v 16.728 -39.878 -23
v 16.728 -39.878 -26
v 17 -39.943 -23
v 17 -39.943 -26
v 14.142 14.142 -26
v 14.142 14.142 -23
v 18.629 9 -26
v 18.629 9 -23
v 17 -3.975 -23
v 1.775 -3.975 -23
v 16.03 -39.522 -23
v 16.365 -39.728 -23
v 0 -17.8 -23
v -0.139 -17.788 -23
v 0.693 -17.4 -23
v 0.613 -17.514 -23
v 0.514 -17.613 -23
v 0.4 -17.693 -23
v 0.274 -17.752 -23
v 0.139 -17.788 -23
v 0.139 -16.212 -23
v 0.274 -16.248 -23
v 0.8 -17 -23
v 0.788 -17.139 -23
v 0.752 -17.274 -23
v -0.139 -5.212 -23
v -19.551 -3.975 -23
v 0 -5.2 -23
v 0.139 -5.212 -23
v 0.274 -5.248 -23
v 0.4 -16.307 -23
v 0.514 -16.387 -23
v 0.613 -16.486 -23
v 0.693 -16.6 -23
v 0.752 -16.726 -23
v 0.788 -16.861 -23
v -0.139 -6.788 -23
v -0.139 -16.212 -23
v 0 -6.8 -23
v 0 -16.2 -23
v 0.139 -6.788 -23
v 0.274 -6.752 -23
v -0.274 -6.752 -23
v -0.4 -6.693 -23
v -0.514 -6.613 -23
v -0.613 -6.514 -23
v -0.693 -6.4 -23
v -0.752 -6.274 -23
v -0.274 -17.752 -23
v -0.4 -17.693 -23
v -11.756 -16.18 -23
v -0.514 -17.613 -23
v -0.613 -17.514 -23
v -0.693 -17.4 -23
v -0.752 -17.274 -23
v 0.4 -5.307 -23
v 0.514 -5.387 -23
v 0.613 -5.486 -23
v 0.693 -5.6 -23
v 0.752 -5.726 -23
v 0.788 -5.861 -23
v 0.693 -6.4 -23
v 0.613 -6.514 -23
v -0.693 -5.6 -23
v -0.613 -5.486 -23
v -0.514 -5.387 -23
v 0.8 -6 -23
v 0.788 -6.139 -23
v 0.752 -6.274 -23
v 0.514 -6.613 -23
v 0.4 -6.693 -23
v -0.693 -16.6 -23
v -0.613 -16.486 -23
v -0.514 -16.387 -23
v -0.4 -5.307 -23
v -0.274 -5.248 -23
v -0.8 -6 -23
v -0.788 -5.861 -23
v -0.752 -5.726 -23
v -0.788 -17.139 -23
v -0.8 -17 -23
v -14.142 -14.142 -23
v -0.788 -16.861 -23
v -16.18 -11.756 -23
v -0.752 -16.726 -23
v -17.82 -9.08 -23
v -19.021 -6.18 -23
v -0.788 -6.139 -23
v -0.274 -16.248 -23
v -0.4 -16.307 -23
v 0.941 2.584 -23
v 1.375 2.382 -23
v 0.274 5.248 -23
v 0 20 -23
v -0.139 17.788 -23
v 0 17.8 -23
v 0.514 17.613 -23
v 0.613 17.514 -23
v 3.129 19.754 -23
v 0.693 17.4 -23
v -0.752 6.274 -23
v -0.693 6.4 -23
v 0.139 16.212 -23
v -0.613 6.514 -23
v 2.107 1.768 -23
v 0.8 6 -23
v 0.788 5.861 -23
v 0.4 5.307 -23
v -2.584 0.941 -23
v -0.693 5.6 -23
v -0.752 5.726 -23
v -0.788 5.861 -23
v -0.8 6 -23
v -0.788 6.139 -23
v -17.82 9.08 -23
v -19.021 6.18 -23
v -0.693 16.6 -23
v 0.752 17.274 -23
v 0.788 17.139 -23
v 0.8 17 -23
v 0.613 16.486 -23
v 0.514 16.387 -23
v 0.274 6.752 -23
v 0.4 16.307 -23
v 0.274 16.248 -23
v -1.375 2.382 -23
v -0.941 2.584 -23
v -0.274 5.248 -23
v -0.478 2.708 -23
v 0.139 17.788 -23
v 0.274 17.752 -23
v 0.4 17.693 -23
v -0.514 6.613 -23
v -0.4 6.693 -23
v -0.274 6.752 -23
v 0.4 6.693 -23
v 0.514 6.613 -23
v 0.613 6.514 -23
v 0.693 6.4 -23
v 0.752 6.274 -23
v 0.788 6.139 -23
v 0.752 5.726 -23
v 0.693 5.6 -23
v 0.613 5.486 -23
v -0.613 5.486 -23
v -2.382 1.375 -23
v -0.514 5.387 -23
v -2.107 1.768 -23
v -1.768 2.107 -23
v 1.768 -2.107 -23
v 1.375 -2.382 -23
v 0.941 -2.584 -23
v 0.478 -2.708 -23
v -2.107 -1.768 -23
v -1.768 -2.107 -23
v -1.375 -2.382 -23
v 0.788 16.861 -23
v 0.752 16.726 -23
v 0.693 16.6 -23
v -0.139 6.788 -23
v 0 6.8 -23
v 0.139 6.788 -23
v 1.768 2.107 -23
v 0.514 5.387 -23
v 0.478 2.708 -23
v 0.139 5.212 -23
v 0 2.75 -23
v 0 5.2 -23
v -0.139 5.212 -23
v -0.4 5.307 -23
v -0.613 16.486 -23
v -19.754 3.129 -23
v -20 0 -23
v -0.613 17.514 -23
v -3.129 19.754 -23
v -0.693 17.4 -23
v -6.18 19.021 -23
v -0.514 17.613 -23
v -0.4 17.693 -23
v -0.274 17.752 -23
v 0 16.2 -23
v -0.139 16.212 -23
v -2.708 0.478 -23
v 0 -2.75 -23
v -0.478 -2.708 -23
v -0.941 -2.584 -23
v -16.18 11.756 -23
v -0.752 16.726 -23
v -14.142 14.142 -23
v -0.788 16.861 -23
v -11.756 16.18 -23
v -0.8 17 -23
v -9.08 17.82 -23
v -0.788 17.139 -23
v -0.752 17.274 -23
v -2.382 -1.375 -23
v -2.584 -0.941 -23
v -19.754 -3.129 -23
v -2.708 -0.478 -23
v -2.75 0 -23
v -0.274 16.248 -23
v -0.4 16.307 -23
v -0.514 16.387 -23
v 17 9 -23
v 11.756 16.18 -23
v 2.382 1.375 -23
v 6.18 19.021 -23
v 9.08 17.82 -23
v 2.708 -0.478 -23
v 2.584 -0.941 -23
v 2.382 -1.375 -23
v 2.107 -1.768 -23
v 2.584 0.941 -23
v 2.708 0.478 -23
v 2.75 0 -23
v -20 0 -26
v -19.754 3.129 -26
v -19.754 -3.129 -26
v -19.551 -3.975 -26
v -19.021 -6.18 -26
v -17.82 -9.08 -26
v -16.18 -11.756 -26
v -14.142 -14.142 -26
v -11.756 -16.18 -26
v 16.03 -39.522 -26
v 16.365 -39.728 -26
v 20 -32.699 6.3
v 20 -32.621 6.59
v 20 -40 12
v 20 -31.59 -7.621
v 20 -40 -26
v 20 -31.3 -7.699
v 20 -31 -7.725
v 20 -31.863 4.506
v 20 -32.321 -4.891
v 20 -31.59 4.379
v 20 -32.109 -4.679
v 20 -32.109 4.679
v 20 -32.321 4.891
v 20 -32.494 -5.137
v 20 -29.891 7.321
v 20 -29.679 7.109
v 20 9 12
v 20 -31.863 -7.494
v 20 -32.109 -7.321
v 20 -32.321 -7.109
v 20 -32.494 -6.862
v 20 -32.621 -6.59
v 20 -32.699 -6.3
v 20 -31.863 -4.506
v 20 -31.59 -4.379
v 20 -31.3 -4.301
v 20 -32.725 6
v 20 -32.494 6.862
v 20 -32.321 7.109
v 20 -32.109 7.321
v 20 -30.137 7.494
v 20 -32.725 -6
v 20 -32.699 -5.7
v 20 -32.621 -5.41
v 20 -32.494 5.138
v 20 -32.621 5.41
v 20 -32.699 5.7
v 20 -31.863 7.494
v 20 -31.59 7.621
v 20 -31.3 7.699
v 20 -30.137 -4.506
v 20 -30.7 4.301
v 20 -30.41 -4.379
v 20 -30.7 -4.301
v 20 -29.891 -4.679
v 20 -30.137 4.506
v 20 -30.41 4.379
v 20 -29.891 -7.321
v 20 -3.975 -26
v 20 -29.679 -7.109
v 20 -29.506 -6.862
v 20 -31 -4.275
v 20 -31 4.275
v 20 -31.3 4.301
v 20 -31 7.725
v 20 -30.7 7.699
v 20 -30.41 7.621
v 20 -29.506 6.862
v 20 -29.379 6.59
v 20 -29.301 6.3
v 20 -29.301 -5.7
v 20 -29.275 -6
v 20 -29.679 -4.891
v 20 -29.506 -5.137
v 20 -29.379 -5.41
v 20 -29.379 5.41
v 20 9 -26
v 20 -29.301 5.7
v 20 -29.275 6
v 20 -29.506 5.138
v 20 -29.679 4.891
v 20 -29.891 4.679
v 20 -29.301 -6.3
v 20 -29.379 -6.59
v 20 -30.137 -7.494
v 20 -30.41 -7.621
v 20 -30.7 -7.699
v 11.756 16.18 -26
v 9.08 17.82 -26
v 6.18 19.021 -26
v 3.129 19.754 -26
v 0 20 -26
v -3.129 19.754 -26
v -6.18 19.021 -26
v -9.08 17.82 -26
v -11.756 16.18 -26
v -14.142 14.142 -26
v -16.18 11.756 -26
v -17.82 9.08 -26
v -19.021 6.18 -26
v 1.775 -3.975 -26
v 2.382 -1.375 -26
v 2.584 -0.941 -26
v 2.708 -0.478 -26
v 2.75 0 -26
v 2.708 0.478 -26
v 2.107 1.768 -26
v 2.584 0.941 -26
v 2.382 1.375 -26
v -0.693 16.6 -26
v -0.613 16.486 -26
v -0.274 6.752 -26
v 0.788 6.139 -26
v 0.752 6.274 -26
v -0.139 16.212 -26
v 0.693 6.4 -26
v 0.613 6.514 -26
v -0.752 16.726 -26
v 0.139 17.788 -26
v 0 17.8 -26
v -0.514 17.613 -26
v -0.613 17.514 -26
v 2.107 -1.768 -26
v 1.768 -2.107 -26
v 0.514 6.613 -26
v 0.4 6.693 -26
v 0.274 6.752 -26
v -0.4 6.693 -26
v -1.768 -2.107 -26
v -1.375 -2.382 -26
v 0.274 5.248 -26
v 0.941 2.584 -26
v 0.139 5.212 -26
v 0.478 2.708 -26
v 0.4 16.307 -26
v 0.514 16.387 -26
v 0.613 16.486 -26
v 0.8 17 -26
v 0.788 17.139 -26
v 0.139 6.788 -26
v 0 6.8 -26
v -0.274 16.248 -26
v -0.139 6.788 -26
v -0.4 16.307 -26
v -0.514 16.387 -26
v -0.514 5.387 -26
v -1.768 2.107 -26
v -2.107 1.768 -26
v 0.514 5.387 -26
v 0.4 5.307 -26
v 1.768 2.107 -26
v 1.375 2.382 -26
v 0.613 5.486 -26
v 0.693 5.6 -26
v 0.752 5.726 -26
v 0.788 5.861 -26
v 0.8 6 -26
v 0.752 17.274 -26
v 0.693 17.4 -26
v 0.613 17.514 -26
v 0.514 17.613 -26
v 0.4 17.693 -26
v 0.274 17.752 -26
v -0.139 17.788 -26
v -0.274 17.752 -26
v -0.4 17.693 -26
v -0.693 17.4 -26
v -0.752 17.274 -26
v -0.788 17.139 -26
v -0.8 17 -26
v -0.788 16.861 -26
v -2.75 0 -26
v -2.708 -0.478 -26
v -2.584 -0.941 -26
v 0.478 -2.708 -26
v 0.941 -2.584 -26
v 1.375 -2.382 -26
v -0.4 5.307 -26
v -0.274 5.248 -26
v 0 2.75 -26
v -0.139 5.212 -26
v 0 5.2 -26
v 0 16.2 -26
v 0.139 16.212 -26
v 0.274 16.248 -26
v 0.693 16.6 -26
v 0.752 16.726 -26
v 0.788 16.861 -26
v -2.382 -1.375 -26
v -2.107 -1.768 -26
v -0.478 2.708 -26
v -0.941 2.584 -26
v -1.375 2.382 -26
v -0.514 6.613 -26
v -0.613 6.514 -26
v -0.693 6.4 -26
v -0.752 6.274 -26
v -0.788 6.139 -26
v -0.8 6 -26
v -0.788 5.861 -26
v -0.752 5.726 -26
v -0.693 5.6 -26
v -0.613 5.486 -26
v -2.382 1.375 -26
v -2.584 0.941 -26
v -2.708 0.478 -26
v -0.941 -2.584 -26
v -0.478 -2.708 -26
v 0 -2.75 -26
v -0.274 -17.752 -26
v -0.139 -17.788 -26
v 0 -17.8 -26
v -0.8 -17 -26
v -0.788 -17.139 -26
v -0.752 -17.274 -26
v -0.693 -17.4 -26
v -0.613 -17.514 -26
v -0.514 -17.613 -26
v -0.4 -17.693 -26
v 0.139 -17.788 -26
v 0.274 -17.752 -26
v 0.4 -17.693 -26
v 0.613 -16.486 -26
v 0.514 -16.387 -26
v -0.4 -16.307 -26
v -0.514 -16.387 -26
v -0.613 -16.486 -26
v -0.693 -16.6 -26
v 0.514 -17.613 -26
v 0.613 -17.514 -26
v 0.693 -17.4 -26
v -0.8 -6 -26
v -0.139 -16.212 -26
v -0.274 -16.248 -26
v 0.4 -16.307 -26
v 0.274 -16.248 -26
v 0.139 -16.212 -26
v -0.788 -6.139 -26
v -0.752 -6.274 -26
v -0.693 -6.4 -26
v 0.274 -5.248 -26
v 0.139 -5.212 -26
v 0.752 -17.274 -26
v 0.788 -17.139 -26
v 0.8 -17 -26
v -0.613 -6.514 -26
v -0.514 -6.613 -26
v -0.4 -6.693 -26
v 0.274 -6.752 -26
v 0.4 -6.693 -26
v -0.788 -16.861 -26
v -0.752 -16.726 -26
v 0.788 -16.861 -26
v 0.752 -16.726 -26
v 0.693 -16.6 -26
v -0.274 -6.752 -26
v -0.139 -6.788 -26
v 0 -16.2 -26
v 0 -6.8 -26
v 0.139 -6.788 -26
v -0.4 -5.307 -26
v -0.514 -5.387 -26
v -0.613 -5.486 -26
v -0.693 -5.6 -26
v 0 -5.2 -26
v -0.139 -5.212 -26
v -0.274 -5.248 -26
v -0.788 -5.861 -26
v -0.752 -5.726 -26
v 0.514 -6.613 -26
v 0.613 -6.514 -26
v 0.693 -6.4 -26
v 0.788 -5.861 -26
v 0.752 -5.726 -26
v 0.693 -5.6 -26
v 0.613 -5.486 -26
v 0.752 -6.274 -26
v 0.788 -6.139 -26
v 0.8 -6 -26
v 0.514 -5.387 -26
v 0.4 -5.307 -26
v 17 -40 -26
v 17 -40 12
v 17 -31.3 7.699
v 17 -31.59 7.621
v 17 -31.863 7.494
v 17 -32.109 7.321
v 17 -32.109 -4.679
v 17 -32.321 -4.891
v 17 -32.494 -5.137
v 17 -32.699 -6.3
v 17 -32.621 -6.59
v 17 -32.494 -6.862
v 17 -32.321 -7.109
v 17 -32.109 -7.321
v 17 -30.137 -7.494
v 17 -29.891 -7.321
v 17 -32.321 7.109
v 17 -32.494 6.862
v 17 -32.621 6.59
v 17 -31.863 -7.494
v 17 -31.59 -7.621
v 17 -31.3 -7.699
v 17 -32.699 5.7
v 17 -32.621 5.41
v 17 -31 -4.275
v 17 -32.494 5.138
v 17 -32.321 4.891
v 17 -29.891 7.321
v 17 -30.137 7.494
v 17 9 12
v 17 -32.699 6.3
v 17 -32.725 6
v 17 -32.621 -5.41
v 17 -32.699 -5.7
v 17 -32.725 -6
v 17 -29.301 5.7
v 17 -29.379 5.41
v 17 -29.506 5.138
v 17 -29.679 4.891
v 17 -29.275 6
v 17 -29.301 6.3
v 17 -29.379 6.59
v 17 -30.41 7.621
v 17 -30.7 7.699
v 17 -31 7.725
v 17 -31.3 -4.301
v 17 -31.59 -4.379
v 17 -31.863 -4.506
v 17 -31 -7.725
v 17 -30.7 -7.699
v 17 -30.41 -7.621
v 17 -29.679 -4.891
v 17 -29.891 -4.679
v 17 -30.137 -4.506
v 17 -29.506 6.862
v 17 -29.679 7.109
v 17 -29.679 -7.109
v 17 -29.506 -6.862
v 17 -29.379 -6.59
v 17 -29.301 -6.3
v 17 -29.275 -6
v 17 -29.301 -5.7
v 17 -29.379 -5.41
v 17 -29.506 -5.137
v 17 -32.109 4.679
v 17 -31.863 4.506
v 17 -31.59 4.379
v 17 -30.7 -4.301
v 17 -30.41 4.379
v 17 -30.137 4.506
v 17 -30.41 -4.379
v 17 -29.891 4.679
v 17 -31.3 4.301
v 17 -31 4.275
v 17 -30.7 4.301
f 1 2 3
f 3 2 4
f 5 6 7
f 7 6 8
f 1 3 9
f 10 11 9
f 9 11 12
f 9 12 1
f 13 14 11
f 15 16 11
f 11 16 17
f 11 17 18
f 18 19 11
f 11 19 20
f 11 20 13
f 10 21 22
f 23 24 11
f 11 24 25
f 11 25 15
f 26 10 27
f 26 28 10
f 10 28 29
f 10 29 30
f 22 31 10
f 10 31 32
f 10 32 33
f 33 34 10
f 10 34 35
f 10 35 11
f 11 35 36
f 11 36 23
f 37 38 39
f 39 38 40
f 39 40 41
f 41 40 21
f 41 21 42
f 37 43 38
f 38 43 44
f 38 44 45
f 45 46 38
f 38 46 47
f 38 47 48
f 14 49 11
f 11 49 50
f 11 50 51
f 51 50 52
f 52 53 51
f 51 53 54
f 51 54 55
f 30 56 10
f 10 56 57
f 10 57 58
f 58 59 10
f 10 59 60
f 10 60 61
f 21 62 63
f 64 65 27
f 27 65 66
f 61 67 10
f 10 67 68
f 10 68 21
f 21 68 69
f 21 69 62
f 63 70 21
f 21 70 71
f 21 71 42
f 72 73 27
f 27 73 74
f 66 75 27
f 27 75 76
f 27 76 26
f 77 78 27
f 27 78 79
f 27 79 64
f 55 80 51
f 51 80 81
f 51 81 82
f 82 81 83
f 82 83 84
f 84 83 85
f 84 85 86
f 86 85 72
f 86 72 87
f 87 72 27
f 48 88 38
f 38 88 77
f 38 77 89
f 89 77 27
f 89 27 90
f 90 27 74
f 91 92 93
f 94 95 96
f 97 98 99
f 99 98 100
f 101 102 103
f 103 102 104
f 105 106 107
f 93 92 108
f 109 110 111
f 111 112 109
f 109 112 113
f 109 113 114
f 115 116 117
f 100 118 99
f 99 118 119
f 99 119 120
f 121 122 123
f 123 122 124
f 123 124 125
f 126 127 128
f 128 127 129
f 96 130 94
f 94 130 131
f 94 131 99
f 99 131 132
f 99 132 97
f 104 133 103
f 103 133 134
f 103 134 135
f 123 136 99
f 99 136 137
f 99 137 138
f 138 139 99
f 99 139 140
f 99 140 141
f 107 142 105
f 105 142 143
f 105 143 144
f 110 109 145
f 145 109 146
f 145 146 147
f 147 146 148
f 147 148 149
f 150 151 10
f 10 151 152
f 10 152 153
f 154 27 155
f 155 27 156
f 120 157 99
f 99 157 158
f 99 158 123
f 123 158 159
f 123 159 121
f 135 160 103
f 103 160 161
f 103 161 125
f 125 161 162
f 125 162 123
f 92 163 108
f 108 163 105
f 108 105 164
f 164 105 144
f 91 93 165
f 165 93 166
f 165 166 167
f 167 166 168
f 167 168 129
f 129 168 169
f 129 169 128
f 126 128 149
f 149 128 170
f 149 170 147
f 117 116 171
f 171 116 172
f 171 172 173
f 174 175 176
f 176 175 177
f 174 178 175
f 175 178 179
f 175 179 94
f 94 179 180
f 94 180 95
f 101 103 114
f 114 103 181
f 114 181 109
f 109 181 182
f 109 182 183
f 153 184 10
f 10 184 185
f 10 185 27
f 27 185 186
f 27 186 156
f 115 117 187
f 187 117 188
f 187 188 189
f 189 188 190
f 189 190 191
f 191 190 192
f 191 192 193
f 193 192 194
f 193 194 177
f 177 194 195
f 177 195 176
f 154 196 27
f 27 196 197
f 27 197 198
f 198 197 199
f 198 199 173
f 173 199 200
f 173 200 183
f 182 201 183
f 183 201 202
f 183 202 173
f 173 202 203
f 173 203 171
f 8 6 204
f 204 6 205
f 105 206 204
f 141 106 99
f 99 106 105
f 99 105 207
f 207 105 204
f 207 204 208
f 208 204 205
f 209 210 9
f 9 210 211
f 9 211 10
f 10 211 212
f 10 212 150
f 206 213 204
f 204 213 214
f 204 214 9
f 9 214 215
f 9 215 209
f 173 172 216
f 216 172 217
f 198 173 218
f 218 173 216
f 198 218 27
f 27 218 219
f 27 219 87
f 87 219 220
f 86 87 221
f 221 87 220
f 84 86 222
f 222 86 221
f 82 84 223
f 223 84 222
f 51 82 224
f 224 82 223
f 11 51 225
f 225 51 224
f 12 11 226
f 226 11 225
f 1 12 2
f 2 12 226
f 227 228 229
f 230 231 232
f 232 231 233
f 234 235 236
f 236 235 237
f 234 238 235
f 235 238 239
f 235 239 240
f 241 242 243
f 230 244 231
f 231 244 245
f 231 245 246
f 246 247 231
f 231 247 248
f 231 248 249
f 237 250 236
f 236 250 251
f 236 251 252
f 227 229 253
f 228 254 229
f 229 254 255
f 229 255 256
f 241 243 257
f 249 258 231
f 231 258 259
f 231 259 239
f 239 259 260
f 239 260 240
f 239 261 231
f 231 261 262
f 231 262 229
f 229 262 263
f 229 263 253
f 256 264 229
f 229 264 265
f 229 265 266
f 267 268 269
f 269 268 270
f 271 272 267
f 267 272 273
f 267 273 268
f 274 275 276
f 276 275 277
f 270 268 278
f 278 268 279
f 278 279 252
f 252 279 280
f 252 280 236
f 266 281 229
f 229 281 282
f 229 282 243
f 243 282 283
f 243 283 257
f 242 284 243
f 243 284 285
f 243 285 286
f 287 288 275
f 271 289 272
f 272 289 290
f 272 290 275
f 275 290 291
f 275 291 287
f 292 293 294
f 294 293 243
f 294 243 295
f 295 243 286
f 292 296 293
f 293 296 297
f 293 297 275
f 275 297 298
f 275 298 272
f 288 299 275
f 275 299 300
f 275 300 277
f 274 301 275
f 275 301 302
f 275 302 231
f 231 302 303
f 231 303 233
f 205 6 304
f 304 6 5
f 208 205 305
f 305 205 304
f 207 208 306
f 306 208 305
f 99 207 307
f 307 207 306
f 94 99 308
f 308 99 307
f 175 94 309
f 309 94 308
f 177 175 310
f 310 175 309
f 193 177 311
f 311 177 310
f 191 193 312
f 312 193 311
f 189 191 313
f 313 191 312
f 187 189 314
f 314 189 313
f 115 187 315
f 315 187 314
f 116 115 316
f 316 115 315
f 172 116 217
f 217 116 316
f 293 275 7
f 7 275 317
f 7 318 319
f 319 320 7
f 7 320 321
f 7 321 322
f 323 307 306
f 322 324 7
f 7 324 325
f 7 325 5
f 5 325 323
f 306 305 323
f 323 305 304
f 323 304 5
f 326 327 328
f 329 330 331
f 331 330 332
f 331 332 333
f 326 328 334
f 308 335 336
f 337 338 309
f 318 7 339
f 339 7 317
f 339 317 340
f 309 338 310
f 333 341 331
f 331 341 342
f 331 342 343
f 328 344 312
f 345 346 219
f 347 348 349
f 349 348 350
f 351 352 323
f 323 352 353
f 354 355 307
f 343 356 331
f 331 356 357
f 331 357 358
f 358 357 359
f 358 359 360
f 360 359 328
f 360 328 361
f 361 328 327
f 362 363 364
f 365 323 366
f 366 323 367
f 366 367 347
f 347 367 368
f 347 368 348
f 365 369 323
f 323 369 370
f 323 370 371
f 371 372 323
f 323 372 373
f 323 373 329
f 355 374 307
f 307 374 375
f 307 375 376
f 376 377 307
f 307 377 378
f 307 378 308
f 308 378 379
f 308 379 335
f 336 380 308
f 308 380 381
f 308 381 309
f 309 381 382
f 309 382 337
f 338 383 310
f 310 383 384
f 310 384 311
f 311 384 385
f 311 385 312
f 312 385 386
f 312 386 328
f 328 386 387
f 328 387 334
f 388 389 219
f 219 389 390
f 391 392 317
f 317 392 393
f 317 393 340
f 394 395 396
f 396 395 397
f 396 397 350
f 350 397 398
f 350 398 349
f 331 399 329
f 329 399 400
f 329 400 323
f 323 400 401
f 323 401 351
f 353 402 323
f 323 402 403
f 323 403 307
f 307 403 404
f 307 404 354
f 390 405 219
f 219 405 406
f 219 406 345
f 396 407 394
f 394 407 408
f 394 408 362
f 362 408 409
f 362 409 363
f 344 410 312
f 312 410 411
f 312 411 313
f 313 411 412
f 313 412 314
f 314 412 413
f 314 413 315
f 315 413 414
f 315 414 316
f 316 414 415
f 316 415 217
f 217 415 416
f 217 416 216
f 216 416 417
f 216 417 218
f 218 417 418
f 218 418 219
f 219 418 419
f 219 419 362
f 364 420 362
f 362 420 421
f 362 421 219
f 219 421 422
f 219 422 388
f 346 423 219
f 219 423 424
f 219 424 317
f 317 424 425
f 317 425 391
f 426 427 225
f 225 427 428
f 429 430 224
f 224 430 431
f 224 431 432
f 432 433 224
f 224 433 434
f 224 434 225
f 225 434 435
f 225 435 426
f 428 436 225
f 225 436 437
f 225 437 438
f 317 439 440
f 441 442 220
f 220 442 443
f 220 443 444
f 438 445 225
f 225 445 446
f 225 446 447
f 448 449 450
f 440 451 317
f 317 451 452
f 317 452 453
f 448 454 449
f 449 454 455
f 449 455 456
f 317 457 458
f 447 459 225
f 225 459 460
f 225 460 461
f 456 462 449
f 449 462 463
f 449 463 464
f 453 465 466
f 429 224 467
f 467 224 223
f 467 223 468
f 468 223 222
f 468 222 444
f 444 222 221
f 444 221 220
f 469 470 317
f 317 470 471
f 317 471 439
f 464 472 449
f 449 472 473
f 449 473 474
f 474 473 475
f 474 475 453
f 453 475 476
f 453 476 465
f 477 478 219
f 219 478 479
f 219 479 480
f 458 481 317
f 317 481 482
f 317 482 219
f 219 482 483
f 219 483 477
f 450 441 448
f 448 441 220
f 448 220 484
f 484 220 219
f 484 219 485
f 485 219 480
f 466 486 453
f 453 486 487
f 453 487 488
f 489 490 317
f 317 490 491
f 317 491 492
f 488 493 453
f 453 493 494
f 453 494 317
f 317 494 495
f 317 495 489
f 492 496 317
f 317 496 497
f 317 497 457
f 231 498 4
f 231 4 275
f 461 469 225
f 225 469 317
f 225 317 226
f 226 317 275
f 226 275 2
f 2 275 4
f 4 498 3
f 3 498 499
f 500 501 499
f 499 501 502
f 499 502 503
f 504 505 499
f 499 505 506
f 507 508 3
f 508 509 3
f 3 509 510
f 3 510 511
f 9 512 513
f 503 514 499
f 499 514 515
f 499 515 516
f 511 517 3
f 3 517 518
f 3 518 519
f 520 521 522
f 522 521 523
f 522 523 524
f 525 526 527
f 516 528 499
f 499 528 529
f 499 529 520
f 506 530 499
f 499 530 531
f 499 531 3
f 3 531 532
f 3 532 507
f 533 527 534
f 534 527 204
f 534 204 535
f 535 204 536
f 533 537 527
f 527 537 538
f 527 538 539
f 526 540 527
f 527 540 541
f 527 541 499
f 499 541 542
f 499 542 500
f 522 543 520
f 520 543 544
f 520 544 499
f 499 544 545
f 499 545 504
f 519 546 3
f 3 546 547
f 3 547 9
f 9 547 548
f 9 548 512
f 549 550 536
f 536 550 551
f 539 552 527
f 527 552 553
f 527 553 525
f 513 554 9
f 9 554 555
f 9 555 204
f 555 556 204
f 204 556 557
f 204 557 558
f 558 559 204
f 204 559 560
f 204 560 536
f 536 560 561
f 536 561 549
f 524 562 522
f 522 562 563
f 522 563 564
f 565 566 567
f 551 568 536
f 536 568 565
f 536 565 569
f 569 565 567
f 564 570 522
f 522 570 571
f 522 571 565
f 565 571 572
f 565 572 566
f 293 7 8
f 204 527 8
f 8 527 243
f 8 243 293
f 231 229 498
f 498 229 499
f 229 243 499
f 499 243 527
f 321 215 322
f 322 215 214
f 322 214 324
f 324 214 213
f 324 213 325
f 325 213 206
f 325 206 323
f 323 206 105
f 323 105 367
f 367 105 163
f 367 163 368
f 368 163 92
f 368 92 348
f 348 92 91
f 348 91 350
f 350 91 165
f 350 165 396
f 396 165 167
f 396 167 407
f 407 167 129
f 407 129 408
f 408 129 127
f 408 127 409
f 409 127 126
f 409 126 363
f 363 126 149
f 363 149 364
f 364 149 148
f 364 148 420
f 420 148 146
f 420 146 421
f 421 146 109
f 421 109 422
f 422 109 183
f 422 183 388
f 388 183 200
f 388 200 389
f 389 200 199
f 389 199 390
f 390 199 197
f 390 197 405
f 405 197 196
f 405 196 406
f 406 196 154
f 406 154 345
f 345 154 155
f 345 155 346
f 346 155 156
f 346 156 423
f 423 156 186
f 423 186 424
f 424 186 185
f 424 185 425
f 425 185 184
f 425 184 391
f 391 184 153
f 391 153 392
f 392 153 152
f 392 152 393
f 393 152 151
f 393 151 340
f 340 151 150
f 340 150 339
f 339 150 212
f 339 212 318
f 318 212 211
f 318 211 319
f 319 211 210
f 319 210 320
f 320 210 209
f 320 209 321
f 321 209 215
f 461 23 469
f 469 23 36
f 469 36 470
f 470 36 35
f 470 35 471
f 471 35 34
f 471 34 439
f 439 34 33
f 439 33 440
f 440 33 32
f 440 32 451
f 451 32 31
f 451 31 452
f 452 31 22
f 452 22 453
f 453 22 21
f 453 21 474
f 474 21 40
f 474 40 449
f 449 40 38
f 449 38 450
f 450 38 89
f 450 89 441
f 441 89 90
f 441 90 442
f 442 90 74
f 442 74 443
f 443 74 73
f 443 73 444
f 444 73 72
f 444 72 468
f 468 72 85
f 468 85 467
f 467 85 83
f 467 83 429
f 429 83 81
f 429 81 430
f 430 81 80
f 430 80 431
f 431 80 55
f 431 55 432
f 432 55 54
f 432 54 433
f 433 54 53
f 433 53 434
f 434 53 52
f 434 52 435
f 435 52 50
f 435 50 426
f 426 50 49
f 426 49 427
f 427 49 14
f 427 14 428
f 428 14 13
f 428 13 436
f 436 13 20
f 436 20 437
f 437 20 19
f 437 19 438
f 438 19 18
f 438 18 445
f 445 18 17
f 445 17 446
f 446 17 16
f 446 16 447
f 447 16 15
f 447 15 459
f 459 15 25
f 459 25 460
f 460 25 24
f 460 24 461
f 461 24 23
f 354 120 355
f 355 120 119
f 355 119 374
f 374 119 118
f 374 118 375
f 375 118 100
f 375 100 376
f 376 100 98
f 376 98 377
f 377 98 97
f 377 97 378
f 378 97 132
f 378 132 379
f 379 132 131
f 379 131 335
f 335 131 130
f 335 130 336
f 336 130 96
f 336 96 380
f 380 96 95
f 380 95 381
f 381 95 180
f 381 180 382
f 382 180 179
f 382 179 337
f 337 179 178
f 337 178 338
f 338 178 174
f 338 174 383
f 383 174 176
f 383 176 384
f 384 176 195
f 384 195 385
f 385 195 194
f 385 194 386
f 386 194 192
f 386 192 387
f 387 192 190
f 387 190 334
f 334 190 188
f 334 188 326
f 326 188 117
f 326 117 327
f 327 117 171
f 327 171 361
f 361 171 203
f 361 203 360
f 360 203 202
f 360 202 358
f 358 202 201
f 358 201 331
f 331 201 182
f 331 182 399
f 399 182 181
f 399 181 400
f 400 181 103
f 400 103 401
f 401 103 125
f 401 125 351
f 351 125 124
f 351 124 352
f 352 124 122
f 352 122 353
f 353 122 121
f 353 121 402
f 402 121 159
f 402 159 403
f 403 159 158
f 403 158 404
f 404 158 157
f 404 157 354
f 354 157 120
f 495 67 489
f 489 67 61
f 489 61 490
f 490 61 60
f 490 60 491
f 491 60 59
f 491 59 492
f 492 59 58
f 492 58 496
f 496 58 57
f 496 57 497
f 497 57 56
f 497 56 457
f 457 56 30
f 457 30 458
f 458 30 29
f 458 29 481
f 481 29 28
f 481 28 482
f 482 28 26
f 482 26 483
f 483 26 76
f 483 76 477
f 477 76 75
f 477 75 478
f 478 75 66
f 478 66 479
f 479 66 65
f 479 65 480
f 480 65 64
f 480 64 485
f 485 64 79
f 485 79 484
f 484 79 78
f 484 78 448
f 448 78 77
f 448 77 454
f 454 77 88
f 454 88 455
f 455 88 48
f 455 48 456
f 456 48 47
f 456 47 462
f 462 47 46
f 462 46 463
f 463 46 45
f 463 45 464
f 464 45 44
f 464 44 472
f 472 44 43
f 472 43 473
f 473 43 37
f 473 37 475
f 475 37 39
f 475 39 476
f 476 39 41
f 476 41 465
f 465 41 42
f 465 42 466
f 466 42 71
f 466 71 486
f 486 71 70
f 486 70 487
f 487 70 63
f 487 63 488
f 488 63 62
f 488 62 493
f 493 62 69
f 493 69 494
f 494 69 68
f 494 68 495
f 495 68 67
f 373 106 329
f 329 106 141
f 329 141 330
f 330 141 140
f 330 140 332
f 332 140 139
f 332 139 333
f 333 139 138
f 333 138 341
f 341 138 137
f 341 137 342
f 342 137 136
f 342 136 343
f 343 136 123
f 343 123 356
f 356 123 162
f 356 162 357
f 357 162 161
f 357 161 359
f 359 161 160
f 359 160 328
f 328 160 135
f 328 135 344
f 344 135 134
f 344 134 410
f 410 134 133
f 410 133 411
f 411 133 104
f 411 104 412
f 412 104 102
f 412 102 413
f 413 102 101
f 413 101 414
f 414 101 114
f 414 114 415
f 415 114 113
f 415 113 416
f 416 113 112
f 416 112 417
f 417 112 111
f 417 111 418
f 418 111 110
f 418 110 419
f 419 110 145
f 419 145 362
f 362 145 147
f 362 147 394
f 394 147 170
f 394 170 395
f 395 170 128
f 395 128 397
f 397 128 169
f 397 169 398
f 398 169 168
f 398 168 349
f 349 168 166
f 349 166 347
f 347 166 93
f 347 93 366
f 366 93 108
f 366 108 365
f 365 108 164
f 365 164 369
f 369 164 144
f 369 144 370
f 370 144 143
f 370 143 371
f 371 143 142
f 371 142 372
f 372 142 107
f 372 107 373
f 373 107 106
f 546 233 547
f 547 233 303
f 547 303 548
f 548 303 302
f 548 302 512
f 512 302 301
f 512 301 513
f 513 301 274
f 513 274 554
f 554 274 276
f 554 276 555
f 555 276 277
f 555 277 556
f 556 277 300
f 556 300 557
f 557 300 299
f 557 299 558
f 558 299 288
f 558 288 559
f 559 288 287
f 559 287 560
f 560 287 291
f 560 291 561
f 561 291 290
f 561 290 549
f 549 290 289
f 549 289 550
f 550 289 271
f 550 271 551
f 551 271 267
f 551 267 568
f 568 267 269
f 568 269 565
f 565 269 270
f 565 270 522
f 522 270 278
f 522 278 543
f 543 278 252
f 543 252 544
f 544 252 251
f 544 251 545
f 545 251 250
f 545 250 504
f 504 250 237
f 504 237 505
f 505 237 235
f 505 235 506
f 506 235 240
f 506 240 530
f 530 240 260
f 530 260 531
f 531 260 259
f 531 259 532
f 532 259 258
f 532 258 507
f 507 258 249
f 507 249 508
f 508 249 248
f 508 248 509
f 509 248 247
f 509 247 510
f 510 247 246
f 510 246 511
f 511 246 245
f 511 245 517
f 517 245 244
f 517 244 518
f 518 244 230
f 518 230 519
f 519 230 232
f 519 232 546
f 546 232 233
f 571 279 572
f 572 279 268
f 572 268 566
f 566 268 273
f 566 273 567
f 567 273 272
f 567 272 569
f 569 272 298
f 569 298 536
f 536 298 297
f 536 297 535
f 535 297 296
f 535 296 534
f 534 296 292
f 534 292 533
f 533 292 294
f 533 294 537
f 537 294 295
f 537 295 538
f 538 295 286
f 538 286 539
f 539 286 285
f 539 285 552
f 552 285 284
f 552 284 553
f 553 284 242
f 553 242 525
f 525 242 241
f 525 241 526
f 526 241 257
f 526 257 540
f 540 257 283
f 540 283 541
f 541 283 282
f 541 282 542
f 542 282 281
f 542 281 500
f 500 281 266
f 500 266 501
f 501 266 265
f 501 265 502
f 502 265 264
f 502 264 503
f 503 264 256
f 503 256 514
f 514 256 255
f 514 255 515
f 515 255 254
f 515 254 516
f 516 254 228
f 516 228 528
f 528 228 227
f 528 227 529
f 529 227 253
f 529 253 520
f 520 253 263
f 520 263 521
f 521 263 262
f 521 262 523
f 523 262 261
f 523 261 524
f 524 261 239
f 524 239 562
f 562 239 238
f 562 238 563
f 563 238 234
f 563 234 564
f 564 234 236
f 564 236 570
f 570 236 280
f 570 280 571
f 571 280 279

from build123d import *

# Parameters (mm, degrees)
BOSS_EXTRUDE1_START     = -26
BOSS_EXTRUDE1_DEPTH     = 3
BOSS_EXTRUDE2_START     = -26
SKETCH2_W               = 3
SKETCH2_H               = 49
BOSS_EXTRUDE2_DEPTH     = 38
CUT_EXTRUDE1_DEPTH      = 52.730068626
CUT_EXTRUDE1_DEPTH_BACK = 52.730068626
SKETCH3_R               = 2.75
SKETCH3_R_2             = 0.8
CUT_EXTRUDE2_DEPTH      = 52.730068626
CUT_EXTRUDE2_DEPTH_BACK = 52.730068626
SKETCH4_R               = 1.725


with BuildPart() as part:
    # Sketch1 → Boss-Extrude1 (new body)
    with BuildSketch(Plane.XY.offset(BOSS_EXTRUDE1_START)):
        Polygon((-20, 0), (-19.7538, -3.1287), (-19.0211, -6.1803), (-17.8201, -9.0798), (-16.1803, -11.7557), (-14.1421, -14.1421), (-11.7557, -16.1803), (16.0305, -39.5225), (16.365, -39.7275), (16.7275, -39.8776), (17.1089, -39.9692), (17.5, -40), (17.8911, -39.9692), (18.2725, -39.8776), (18.635, -39.7275), (18.9695, -39.5225), (19.2678, -39.2678), (19.5225, -38.9695), (19.7275, -38.635), (19.8776, -38.2725), (19.9692, -37.8911), (20, -37.5), (20, 6.5), (19.9692, 6.8911), (19.8776, 7.2725), (19.7275, 7.635), (19.5225, 7.9695), (19.2678, 8.2678), (14.1421, 14.1421), (11.7557, 16.1803), (9.0798, 17.8201), (6.1803, 19.0211), (3.1287, 19.7538), (0, 20), (-3.1287, 19.7538), (-6.1803, 19.0211), (-9.0798, 17.8201), (-11.7557, 16.1803), (-14.1421, 14.1421), (-16.1803, 11.7557), (-17.8201, 9.0798), (-19.0211, 6.1803), (-19.7538, 3.1287), align=None)
    extrude(amount=BOSS_EXTRUDE1_DEPTH)

    # Sketch2 → Boss-Extrude2 (add)
    with BuildSketch(Plane.XY.offset(BOSS_EXTRUDE2_START)):
        with Locations((18.5, -15.5)):
            Rectangle(SKETCH2_W, SKETCH2_H)
    extrude(amount=BOSS_EXTRUDE2_DEPTH)

    # Sketch3 → Cut-Extrude1 (cut, two sides: drawn at the far end of the back side and taken through both)
    with BuildSketch(Plane.XY.offset(-CUT_EXTRUDE1_DEPTH_BACK)):
        Circle(SKETCH3_R)
        with Locations((0, 6)):
            Circle(SKETCH3_R_2)
        with Locations((0, -6)):
            Circle(SKETCH3_R_2)
        with Locations((0, 17)):
            Circle(SKETCH3_R_2)
        with Locations((0, -17)):
            Circle(SKETCH3_R_2)
    extrude(amount=CUT_EXTRUDE1_DEPTH + CUT_EXTRUDE1_DEPTH_BACK, mode=Mode.SUBTRACT)

    # Sketch4 → Cut-Extrude2 (cut, two sides: drawn at the far end of the back side and taken through both)
    with BuildSketch(Plane(origin=(0, 0, 0), x_dir=(0, 0, -1), z_dir=(1, 0, 0)).offset(-CUT_EXTRUDE2_DEPTH_BACK)):
        with Locations((-6, -31)):
            Circle(SKETCH4_R)
        with Locations((6, -31)):
            Circle(SKETCH4_R)
    extrude(amount=CUT_EXTRUDE2_DEPTH + CUT_EXTRUDE2_DEPTH_BACK, mode=Mode.SUBTRACT)


solid = part.part
